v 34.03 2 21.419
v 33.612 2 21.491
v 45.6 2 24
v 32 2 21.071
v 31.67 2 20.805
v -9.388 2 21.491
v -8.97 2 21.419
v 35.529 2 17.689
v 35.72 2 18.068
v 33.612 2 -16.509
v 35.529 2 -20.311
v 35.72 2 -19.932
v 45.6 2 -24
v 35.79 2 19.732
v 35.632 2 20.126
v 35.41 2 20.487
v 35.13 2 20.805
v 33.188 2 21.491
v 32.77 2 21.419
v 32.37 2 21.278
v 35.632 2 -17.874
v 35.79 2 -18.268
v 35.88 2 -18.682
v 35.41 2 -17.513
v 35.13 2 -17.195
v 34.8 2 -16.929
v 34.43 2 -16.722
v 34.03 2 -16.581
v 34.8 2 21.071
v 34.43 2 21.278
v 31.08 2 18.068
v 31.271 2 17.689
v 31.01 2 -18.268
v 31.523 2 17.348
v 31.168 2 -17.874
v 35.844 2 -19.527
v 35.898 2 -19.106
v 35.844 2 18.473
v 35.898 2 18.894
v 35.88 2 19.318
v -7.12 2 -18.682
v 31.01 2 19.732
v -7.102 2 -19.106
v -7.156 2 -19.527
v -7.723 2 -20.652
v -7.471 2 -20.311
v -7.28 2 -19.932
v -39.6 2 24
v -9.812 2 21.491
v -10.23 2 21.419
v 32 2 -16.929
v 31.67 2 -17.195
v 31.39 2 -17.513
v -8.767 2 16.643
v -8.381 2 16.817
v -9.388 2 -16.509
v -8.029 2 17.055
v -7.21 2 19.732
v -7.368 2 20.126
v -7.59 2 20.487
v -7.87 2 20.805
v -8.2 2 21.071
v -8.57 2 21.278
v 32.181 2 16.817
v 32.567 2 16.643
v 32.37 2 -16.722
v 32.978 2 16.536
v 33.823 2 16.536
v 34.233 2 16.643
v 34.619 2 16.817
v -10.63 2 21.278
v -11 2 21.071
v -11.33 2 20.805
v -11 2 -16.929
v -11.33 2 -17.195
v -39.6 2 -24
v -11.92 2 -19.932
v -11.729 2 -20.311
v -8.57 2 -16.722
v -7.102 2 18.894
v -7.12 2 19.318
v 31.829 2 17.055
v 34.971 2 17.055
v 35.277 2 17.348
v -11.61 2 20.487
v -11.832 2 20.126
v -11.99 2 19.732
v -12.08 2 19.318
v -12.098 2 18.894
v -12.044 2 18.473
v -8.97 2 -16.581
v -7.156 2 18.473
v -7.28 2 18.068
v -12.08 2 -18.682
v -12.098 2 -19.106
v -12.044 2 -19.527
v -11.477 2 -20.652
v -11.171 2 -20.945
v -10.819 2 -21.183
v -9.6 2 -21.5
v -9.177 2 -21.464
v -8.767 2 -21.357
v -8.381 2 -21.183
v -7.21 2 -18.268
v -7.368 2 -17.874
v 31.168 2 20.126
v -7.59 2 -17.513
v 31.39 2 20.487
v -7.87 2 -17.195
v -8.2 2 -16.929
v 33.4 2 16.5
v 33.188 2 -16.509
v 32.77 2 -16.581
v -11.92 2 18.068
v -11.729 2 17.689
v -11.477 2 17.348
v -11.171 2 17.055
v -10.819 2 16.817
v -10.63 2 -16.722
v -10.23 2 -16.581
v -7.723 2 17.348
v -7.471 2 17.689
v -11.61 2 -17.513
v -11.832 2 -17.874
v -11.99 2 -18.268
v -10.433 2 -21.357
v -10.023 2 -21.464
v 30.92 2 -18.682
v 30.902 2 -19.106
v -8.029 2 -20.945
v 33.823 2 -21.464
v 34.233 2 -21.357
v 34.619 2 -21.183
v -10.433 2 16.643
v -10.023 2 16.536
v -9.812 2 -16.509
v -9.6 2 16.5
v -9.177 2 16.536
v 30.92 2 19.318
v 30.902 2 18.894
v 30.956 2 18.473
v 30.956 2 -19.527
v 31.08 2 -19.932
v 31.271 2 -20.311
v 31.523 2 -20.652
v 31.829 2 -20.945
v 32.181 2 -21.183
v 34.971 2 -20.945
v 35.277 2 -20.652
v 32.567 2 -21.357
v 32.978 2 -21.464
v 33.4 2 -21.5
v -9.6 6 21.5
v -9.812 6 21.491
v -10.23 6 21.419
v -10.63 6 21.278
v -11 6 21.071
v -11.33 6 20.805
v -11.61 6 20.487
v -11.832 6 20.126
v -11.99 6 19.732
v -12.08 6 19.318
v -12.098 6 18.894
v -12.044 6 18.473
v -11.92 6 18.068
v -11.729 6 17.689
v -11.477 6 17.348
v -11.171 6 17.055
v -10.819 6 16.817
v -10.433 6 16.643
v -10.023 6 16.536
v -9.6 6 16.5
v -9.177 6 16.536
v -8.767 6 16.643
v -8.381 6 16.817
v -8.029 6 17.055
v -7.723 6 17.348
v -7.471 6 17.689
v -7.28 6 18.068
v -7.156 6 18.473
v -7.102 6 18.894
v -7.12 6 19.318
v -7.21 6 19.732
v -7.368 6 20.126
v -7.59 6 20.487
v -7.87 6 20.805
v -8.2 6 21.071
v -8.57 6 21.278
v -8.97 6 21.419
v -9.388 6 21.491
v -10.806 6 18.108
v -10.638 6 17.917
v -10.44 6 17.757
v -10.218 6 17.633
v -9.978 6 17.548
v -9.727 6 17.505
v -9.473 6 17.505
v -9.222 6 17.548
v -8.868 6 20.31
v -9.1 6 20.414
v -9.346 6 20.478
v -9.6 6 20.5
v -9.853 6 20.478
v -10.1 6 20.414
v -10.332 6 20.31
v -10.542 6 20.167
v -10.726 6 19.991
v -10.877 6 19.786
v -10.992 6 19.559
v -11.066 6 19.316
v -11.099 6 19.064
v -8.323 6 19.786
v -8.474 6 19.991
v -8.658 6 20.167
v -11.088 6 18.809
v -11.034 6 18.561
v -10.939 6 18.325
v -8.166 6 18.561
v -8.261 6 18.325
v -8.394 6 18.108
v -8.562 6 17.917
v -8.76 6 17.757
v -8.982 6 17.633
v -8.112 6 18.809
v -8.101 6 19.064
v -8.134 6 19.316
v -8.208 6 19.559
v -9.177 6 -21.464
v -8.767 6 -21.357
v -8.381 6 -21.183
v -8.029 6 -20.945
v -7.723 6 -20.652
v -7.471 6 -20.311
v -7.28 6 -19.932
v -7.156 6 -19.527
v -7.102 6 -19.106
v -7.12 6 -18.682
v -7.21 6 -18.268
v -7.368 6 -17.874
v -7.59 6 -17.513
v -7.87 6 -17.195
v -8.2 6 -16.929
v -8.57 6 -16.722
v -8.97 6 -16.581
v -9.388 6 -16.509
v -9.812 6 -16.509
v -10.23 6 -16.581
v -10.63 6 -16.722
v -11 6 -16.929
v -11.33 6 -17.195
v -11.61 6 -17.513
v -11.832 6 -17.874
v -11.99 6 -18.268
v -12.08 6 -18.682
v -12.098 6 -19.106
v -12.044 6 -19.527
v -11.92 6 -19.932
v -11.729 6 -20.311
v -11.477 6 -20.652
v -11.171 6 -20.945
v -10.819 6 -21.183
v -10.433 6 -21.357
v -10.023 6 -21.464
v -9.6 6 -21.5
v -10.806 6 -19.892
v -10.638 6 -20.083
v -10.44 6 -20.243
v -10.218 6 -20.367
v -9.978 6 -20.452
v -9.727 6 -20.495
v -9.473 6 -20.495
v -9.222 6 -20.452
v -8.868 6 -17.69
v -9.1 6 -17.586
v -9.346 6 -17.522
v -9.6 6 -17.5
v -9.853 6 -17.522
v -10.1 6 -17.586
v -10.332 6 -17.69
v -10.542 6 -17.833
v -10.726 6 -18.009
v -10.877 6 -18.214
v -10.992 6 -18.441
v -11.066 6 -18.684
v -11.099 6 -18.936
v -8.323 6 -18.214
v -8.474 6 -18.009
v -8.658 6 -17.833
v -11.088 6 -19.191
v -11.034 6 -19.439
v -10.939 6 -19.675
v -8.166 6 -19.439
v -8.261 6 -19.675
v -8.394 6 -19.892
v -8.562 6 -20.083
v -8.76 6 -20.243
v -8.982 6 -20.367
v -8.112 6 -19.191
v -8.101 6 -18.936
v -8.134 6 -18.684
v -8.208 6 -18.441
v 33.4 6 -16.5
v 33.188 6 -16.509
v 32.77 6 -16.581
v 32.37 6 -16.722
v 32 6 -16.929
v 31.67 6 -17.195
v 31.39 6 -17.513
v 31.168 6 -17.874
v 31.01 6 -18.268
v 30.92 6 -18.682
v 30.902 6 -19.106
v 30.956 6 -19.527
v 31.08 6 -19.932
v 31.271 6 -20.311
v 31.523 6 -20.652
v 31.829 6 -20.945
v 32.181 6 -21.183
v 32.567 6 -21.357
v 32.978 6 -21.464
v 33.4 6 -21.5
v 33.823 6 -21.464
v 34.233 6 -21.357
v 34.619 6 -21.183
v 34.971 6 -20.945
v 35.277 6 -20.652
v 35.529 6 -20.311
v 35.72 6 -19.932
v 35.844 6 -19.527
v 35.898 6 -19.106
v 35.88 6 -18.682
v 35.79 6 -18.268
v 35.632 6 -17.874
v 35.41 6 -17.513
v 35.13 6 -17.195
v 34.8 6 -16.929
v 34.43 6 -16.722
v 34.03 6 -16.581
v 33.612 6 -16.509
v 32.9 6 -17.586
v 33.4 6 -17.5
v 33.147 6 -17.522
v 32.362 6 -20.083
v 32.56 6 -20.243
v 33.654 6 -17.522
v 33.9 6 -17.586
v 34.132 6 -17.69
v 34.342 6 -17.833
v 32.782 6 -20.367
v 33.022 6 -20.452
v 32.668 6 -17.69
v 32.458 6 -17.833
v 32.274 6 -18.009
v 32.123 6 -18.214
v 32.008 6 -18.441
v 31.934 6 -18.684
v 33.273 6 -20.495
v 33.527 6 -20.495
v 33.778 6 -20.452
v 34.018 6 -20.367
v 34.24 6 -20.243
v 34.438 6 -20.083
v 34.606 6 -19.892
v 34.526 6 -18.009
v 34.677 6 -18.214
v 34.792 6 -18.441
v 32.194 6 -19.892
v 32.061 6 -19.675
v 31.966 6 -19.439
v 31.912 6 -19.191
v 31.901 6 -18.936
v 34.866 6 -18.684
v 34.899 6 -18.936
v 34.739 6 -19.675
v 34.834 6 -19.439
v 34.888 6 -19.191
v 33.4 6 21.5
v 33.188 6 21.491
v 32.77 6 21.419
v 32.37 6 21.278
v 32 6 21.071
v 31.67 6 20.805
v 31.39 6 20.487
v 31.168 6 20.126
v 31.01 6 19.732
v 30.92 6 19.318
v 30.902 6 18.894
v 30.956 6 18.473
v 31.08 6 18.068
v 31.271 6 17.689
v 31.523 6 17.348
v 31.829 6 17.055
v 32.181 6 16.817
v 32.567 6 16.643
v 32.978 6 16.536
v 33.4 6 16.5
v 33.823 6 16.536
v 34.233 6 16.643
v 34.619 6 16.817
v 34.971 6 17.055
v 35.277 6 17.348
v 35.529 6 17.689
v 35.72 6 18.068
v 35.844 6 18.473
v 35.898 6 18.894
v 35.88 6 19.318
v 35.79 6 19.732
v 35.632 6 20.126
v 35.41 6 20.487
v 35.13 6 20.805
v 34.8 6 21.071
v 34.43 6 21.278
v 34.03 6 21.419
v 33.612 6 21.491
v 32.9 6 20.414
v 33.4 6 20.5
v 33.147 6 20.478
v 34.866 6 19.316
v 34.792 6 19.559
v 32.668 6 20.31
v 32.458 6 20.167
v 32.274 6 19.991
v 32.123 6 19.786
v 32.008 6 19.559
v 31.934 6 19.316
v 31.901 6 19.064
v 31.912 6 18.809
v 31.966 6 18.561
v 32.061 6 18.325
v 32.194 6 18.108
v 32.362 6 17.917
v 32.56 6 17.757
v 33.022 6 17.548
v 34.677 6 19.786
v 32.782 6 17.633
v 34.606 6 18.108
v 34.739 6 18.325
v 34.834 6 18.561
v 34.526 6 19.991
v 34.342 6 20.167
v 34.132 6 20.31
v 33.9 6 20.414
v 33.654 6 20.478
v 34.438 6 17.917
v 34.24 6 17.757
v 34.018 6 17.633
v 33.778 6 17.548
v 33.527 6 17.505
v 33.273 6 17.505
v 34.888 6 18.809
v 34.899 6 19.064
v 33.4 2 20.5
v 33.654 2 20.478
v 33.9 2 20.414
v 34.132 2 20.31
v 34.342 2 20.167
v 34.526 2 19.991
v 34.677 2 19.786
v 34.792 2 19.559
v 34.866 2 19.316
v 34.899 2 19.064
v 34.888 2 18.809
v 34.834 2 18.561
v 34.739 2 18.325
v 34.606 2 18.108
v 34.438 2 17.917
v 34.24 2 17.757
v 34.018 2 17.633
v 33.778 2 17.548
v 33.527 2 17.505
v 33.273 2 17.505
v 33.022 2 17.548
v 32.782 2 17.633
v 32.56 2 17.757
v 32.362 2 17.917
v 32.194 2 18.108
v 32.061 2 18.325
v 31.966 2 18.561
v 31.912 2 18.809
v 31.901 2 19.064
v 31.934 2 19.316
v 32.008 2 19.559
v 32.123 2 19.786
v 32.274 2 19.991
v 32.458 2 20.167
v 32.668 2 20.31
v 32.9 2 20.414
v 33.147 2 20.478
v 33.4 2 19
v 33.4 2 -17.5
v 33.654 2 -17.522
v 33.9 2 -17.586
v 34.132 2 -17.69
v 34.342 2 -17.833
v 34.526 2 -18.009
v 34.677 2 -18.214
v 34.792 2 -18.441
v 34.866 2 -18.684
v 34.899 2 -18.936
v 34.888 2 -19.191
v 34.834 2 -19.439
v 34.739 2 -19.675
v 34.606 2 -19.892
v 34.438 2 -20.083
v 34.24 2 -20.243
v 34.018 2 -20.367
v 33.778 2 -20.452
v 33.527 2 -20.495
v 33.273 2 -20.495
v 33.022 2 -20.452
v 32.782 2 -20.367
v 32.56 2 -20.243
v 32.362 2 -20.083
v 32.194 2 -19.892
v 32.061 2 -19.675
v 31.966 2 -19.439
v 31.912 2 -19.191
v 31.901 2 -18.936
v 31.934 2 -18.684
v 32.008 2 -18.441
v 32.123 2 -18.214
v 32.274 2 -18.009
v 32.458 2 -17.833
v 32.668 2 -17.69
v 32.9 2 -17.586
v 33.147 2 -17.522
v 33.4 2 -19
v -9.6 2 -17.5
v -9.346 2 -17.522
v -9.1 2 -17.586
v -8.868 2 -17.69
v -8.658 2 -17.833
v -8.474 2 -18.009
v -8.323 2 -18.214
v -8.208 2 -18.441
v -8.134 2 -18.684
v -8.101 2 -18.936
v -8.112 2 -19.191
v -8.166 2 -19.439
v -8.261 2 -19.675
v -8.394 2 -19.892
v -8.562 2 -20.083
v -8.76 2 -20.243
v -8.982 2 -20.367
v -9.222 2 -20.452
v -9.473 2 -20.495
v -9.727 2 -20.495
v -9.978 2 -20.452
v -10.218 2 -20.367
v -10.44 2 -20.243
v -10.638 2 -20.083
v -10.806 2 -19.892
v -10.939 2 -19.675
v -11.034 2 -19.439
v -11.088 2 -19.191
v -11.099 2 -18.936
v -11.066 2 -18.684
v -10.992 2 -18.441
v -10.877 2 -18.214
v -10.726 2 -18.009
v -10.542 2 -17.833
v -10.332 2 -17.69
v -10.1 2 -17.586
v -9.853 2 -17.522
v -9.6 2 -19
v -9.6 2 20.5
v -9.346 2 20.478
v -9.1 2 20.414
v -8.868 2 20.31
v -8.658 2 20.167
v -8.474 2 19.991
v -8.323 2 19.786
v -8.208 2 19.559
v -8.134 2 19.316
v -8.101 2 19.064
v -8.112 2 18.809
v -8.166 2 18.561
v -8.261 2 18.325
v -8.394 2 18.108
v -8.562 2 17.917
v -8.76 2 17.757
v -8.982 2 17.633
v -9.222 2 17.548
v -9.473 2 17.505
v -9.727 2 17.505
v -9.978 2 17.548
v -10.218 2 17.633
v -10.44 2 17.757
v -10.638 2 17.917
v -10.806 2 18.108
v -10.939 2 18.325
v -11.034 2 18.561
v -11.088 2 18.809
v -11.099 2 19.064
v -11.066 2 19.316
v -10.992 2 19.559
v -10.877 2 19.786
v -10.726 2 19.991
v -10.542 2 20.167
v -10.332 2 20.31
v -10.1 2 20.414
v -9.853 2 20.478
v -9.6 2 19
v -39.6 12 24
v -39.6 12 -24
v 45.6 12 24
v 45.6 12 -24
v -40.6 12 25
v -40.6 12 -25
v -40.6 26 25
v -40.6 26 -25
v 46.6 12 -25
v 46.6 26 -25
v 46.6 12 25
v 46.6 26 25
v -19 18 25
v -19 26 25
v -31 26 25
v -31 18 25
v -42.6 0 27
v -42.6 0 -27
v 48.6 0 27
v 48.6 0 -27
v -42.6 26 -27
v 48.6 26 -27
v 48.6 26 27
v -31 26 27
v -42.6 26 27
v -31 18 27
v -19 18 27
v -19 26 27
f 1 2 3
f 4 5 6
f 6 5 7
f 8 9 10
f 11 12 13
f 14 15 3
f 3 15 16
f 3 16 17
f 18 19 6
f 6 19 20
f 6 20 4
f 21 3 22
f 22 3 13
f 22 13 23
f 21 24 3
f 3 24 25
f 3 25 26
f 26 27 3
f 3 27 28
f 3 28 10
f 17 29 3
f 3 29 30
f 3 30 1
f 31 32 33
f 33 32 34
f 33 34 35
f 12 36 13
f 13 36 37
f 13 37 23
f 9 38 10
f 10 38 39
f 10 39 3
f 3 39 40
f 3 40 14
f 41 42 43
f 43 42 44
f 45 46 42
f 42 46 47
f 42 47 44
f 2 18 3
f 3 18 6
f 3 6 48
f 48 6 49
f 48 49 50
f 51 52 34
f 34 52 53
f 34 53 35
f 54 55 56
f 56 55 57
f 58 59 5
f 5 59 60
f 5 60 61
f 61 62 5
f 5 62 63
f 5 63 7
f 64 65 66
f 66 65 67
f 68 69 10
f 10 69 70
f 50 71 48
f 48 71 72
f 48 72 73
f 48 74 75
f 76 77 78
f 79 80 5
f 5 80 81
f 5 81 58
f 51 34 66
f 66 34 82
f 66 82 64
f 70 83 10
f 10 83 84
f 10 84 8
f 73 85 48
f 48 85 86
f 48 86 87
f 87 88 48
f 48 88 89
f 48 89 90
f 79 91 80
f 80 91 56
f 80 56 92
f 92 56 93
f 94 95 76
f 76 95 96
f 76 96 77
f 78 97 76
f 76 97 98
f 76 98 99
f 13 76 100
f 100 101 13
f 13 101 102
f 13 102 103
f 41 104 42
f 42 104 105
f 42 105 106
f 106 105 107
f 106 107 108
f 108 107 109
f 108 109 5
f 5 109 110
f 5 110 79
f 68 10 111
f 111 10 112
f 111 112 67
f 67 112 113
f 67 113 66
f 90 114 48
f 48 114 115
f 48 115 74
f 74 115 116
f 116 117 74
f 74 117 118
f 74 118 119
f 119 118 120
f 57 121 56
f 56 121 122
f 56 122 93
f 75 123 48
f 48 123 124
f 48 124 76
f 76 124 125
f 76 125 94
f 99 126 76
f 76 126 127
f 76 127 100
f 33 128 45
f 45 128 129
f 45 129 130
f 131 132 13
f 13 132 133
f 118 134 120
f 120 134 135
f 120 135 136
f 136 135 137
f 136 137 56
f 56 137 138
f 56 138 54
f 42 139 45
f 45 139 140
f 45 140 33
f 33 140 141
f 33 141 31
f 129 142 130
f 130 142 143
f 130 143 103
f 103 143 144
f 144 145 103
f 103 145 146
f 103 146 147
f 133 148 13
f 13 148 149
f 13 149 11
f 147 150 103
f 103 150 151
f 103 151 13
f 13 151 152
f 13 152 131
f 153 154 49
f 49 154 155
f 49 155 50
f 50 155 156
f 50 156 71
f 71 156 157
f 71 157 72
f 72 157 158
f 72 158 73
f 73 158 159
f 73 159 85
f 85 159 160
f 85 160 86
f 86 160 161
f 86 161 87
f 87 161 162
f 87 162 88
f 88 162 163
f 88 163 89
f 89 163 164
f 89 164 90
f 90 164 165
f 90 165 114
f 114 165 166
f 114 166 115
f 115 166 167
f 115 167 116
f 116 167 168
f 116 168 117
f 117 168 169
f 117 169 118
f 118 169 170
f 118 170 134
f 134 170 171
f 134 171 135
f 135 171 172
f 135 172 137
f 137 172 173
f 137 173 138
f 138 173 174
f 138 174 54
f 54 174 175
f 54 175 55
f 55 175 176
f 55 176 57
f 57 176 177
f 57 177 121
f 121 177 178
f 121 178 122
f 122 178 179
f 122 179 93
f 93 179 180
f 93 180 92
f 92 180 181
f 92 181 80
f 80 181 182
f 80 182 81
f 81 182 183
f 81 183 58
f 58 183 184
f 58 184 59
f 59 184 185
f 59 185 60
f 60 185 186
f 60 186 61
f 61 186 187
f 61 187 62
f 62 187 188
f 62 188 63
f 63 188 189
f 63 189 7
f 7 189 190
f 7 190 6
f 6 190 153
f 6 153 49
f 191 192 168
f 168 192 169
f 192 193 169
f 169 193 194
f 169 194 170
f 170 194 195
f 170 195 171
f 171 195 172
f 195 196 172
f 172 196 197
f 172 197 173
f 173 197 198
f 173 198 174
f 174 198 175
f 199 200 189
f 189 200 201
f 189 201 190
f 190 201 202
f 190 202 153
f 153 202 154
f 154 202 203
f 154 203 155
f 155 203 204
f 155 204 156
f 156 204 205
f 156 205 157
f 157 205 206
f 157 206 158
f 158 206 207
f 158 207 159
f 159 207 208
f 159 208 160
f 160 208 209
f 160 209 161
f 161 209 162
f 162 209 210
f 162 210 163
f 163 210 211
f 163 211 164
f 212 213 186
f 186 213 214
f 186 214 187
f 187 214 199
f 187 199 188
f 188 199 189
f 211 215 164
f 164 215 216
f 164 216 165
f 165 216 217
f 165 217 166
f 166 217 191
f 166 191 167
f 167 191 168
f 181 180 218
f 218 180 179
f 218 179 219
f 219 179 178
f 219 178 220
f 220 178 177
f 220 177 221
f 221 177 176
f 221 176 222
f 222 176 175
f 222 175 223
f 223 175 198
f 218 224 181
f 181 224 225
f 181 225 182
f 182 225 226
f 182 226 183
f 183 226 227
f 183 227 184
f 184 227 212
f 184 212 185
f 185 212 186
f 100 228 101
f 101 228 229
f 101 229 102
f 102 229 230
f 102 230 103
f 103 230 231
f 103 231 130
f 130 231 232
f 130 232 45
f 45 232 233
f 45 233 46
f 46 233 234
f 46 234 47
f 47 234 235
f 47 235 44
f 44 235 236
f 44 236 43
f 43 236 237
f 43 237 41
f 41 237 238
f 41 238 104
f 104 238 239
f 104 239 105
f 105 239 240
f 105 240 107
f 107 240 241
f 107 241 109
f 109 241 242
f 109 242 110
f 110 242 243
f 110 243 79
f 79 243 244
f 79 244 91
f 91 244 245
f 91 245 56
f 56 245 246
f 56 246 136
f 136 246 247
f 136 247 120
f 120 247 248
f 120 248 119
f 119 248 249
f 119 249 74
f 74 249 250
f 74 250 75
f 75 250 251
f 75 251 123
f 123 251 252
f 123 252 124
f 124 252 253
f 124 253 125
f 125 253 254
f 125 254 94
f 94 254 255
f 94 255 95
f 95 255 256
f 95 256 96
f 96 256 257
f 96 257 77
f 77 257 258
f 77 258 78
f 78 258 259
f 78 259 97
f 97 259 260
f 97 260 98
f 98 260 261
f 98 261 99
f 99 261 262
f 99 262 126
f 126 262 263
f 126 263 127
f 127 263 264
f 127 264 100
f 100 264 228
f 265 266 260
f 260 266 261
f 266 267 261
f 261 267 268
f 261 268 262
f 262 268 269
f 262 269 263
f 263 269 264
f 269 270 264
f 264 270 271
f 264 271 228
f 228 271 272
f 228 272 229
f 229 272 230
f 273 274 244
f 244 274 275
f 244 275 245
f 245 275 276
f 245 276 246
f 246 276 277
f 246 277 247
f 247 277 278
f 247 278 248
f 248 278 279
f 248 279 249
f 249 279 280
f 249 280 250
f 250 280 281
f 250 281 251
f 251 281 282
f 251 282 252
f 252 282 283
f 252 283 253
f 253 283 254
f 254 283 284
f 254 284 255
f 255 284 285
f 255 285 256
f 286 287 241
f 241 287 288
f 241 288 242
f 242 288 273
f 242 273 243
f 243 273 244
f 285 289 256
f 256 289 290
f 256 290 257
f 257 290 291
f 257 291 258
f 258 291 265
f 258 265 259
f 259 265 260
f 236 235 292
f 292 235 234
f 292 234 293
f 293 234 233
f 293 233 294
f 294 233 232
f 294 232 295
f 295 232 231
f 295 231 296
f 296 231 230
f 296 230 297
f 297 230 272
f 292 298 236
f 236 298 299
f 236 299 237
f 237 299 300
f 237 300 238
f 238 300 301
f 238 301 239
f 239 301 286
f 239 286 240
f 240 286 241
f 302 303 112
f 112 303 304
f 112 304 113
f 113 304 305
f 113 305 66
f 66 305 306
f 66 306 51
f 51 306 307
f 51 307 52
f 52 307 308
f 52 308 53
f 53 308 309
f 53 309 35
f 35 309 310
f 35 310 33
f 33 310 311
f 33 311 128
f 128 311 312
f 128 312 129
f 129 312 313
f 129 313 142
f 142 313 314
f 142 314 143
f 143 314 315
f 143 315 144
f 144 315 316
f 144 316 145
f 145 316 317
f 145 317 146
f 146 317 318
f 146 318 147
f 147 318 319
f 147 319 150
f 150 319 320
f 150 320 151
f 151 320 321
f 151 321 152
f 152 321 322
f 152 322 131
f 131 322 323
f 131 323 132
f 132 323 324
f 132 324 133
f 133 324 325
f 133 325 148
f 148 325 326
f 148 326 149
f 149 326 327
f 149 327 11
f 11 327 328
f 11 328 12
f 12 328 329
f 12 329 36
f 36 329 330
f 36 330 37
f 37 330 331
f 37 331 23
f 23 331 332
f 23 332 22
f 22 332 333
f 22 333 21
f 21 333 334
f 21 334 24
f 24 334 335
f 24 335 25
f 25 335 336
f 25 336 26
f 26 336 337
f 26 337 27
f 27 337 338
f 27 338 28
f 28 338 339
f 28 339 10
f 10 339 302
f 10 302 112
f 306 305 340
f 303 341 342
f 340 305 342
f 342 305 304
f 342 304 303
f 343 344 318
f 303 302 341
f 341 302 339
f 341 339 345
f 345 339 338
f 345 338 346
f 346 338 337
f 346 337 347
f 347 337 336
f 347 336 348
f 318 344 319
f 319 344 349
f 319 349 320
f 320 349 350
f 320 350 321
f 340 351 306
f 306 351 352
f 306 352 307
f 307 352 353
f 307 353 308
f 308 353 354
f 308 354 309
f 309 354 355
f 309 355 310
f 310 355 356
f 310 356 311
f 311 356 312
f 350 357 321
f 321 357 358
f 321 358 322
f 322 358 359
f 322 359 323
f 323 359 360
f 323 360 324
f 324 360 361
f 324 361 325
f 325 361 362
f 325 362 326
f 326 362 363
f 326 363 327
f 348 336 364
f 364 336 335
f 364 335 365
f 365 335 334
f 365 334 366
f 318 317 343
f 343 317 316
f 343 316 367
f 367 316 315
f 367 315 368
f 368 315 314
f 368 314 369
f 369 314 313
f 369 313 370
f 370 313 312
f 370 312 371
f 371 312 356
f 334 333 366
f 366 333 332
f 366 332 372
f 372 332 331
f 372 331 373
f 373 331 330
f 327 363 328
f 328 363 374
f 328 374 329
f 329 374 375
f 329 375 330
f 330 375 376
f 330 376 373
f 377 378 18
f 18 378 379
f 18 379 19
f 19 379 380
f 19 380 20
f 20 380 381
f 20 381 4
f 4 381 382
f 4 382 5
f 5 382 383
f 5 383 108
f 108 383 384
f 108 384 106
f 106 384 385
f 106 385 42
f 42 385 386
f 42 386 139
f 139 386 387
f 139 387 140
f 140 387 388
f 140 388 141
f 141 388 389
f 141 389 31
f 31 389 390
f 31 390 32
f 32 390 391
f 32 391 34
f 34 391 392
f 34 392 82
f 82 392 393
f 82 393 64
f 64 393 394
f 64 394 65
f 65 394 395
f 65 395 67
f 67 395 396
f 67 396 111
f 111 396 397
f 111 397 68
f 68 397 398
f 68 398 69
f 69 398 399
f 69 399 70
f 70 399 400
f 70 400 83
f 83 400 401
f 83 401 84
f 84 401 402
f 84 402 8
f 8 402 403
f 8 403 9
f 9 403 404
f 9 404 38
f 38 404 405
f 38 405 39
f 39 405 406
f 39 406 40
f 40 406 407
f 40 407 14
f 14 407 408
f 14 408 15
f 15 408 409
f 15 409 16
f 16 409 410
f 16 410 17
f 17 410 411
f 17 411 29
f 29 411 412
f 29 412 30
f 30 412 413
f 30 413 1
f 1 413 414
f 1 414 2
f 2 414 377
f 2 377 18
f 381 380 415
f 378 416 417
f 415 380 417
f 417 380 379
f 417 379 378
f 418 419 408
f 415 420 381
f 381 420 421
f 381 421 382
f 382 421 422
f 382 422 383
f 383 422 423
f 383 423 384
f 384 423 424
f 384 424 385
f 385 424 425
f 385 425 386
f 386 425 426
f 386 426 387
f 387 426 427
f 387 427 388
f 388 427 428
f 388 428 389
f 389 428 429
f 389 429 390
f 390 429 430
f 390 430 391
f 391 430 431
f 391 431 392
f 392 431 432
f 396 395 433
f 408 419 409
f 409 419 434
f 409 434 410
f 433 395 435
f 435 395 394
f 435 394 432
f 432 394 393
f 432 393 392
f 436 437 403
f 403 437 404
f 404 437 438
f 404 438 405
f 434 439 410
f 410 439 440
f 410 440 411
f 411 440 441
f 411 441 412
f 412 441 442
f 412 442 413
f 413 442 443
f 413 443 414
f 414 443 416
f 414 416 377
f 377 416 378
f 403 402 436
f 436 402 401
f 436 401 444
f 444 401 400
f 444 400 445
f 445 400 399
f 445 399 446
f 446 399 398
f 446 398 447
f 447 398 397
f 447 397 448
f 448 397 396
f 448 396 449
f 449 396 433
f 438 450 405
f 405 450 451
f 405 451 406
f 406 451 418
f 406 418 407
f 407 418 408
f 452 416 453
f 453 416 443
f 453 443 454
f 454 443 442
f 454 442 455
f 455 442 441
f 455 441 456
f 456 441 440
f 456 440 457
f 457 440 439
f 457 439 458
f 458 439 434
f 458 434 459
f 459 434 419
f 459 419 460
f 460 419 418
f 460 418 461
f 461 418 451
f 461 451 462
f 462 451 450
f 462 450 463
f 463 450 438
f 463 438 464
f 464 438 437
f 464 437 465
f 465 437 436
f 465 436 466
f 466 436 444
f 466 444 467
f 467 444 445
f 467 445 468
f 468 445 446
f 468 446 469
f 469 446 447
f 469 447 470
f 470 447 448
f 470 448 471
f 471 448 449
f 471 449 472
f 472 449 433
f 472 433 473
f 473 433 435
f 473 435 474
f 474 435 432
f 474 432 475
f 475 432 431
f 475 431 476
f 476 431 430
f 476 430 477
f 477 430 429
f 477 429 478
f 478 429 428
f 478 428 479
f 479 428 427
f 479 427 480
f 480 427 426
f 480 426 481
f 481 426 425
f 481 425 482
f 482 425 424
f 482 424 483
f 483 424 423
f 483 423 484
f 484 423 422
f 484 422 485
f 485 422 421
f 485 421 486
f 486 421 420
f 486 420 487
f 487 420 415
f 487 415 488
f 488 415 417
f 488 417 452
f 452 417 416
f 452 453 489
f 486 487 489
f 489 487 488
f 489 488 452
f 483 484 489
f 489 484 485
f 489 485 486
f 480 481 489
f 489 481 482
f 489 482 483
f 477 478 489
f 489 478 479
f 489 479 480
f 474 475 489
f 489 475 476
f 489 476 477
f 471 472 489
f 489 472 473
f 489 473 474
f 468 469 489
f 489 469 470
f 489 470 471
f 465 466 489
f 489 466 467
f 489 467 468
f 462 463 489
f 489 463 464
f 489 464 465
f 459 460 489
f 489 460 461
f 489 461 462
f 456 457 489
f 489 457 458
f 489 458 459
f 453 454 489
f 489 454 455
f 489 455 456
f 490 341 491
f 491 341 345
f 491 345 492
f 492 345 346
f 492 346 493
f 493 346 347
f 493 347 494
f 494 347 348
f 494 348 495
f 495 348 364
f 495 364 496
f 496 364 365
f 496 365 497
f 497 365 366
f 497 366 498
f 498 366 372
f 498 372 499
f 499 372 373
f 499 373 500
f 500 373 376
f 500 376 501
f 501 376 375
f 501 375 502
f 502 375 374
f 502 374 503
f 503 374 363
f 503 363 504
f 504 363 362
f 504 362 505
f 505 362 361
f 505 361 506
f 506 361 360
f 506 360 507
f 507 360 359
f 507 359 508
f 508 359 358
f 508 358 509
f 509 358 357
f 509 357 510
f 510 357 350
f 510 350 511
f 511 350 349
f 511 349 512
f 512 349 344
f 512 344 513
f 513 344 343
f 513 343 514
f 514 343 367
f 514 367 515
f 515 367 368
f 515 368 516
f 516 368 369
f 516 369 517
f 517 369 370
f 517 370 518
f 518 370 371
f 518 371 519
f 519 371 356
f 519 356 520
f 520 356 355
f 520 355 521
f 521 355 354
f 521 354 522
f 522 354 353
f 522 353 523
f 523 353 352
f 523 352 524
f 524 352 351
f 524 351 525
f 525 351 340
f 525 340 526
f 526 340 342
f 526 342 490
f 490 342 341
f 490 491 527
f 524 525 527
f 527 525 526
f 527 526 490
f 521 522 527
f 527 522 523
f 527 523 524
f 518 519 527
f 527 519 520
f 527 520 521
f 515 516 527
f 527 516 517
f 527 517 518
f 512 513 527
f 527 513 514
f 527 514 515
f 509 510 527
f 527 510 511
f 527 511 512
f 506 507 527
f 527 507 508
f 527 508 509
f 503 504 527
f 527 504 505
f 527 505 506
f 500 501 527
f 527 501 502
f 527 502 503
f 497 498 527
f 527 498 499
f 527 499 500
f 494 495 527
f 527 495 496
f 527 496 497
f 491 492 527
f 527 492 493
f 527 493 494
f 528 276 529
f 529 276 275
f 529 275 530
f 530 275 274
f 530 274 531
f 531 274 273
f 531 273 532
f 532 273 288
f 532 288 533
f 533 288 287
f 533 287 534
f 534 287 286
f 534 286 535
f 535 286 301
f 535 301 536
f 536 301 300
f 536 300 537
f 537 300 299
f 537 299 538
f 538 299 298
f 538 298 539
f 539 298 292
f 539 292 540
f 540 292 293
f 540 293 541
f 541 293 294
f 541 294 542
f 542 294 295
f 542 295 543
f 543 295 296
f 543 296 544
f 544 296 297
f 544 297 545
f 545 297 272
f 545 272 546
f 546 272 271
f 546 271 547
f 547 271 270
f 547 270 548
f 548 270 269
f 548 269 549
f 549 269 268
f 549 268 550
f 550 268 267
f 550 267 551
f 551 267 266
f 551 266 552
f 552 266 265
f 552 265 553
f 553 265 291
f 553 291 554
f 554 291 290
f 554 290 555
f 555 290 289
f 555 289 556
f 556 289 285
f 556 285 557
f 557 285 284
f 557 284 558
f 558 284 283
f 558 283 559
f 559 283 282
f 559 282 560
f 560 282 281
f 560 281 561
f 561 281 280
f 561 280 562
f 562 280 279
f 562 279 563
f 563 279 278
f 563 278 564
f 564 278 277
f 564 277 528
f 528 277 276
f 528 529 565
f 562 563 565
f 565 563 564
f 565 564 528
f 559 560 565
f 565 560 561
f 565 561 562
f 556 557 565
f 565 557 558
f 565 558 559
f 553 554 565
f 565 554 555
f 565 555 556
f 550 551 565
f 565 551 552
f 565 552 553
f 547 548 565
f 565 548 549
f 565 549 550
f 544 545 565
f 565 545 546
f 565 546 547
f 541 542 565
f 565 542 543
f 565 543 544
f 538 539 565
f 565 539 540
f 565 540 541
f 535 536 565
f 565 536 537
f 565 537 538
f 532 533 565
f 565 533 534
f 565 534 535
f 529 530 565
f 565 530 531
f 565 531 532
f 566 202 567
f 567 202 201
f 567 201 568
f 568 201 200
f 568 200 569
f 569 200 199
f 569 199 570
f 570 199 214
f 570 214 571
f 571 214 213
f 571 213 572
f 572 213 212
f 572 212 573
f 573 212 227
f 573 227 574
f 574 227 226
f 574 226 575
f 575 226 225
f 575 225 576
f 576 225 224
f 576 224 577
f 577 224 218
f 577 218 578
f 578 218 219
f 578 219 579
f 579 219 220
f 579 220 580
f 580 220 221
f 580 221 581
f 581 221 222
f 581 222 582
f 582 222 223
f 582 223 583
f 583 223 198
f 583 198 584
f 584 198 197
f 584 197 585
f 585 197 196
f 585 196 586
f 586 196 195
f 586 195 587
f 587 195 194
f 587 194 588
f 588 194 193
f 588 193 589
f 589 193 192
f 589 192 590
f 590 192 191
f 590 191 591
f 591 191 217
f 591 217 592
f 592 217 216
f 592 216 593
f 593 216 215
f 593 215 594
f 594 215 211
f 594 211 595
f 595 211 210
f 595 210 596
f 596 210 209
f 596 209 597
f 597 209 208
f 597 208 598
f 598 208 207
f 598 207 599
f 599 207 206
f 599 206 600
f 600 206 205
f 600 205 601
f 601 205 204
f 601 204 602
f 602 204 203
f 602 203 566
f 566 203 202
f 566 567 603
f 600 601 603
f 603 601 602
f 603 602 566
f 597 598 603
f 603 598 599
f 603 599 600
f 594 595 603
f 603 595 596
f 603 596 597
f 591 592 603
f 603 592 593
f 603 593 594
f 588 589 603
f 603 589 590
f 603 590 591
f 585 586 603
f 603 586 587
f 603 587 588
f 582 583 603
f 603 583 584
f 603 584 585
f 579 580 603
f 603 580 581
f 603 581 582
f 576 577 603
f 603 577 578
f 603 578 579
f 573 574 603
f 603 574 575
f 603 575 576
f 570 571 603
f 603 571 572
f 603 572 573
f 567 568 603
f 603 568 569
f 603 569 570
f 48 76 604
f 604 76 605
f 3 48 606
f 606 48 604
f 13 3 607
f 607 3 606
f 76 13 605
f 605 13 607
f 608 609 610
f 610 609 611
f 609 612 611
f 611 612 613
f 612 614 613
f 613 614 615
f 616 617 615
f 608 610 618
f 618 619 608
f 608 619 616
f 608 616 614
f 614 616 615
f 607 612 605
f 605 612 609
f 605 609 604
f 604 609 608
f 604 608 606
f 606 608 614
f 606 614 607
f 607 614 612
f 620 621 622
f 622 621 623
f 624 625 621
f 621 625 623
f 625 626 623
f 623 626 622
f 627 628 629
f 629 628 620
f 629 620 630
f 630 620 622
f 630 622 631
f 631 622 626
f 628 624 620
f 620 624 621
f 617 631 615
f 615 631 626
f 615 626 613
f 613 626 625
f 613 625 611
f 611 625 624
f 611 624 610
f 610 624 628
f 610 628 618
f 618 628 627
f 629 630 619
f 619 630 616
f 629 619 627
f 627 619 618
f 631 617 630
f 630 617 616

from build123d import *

# Parameters (mm, degrees)
CROQUIS1_W              = 91.2
CROQUIS1_H              = 54
SALIENTE_EXTRUIR1_DEPTH = 2
CROQUIS2_R              = 2.5
SALIENTE_EXTRUIR2_DEPTH = 4
CROQUIS3_R              = 1.5
CORTAR_EXTRUIR1_DEPTH   = 4
CROQUIS4_W              = 91.2
CROQUIS4_H              = 54
CROQUIS4_W_2            = 85.2
CROQUIS4_H_2            = 48
SALIENTE_EXTRUIR3_DEPTH = 24
CROQUIS7_W              = 87.2
CROQUIS7_H              = 50
CORTAR_EXTRUIR2_DEPTH   = 14
CROQUIS9_W              = 12
CROQUIS9_H              = 25
CORTAR_EXTRUIR3_DEPTH   = 8


with BuildPart() as part:
    # Croquis1 → Saliente-Extruir1 (new body)
    with BuildSketch(Plane(origin=(0, 0, 0), x_dir=(1, 0, 0), z_dir=(0, 1, 0))):
        with Locations((3, 0)):
            Rectangle(CROQUIS1_W, CROQUIS1_H)
    extrude(amount=SALIENTE_EXTRUIR1_DEPTH)

    # Croquis2 → Saliente-Extruir2 (add)
    with BuildSketch(Plane(origin=(0, 2, 0), x_dir=(1, 0, 0), z_dir=(0, 1, 0))):
        with Locations(Location((-9.6, -19, 0), (0, 0, 90))):
            Circle(CROQUIS2_R)
        with Locations(Location((-9.6, 19, 0), (0, 0, 90))):
            Circle(CROQUIS2_R)
        with Locations(Location((33.4, 19, 0), (0, 0, 90))):
            Circle(CROQUIS2_R)
        with Locations(Location((33.4, -19, 0), (0, 0, 90))):
            Circle(CROQUIS2_R)
    extrude(amount=SALIENTE_EXTRUIR2_DEPTH)

    # Croquis3 → Cortar-Extruir1 (cut)
    with BuildSketch(Plane(origin=(0, 6, 0), x_dir=(1, 0, 0), z_dir=(0, 1, 0))):
        with Locations(Location((-9.6, -19, 0), (0, 0, 270))):
            Circle(CROQUIS3_R)
        with Locations(Location((33.4, -19, 0), (0, 0, 270))):
            Circle(CROQUIS3_R)
        with Locations(Location((33.4, 19, 0), (0, 0, 270))):
            Circle(CROQUIS3_R)
        with Locations(Location((-9.6, 19, 0), (0, 0, 270))):
            Circle(CROQUIS3_R)
    extrude(amount=-CORTAR_EXTRUIR1_DEPTH, mode=Mode.SUBTRACT)

    # Croquis4 → Saliente-Extruir3 (add)
    with BuildSketch(Plane(origin=(0, 2, 0), x_dir=(1, 0, 0), z_dir=(0, 1, 0))):
        with Locations((3, 0)):
            Rectangle(CROQUIS4_W, CROQUIS4_H)
        with Locations((3, 0)):
            Rectangle(CROQUIS4_W_2, CROQUIS4_H_2, mode=Mode.SUBTRACT)
    extrude(amount=SALIENTE_EXTRUIR3_DEPTH)

    # Croquis7 → Cortar-Extruir2 (cut)
    with BuildSketch(Plane(origin=(0, 26, 0), x_dir=(1, 0, 0), z_dir=(0, 1, 0))):
        with Locations((3, 0)):
            Rectangle(CROQUIS7_W, CROQUIS7_H)
    extrude(amount=-CORTAR_EXTRUIR2_DEPTH, mode=Mode.SUBTRACT)

    # Croquis9 → Cortar-Extruir3 (cut)
    with BuildSketch(Plane(origin=(0, 26, 0), x_dir=(1, 0, 0), z_dir=(0, 1, 0))):
        with Locations((-25, -23)):
            Rectangle(CROQUIS9_W, CROQUIS9_H)
    extrude(amount=-CORTAR_EXTRUIR3_DEPTH, mode=Mode.SUBTRACT)


solid = part.part
